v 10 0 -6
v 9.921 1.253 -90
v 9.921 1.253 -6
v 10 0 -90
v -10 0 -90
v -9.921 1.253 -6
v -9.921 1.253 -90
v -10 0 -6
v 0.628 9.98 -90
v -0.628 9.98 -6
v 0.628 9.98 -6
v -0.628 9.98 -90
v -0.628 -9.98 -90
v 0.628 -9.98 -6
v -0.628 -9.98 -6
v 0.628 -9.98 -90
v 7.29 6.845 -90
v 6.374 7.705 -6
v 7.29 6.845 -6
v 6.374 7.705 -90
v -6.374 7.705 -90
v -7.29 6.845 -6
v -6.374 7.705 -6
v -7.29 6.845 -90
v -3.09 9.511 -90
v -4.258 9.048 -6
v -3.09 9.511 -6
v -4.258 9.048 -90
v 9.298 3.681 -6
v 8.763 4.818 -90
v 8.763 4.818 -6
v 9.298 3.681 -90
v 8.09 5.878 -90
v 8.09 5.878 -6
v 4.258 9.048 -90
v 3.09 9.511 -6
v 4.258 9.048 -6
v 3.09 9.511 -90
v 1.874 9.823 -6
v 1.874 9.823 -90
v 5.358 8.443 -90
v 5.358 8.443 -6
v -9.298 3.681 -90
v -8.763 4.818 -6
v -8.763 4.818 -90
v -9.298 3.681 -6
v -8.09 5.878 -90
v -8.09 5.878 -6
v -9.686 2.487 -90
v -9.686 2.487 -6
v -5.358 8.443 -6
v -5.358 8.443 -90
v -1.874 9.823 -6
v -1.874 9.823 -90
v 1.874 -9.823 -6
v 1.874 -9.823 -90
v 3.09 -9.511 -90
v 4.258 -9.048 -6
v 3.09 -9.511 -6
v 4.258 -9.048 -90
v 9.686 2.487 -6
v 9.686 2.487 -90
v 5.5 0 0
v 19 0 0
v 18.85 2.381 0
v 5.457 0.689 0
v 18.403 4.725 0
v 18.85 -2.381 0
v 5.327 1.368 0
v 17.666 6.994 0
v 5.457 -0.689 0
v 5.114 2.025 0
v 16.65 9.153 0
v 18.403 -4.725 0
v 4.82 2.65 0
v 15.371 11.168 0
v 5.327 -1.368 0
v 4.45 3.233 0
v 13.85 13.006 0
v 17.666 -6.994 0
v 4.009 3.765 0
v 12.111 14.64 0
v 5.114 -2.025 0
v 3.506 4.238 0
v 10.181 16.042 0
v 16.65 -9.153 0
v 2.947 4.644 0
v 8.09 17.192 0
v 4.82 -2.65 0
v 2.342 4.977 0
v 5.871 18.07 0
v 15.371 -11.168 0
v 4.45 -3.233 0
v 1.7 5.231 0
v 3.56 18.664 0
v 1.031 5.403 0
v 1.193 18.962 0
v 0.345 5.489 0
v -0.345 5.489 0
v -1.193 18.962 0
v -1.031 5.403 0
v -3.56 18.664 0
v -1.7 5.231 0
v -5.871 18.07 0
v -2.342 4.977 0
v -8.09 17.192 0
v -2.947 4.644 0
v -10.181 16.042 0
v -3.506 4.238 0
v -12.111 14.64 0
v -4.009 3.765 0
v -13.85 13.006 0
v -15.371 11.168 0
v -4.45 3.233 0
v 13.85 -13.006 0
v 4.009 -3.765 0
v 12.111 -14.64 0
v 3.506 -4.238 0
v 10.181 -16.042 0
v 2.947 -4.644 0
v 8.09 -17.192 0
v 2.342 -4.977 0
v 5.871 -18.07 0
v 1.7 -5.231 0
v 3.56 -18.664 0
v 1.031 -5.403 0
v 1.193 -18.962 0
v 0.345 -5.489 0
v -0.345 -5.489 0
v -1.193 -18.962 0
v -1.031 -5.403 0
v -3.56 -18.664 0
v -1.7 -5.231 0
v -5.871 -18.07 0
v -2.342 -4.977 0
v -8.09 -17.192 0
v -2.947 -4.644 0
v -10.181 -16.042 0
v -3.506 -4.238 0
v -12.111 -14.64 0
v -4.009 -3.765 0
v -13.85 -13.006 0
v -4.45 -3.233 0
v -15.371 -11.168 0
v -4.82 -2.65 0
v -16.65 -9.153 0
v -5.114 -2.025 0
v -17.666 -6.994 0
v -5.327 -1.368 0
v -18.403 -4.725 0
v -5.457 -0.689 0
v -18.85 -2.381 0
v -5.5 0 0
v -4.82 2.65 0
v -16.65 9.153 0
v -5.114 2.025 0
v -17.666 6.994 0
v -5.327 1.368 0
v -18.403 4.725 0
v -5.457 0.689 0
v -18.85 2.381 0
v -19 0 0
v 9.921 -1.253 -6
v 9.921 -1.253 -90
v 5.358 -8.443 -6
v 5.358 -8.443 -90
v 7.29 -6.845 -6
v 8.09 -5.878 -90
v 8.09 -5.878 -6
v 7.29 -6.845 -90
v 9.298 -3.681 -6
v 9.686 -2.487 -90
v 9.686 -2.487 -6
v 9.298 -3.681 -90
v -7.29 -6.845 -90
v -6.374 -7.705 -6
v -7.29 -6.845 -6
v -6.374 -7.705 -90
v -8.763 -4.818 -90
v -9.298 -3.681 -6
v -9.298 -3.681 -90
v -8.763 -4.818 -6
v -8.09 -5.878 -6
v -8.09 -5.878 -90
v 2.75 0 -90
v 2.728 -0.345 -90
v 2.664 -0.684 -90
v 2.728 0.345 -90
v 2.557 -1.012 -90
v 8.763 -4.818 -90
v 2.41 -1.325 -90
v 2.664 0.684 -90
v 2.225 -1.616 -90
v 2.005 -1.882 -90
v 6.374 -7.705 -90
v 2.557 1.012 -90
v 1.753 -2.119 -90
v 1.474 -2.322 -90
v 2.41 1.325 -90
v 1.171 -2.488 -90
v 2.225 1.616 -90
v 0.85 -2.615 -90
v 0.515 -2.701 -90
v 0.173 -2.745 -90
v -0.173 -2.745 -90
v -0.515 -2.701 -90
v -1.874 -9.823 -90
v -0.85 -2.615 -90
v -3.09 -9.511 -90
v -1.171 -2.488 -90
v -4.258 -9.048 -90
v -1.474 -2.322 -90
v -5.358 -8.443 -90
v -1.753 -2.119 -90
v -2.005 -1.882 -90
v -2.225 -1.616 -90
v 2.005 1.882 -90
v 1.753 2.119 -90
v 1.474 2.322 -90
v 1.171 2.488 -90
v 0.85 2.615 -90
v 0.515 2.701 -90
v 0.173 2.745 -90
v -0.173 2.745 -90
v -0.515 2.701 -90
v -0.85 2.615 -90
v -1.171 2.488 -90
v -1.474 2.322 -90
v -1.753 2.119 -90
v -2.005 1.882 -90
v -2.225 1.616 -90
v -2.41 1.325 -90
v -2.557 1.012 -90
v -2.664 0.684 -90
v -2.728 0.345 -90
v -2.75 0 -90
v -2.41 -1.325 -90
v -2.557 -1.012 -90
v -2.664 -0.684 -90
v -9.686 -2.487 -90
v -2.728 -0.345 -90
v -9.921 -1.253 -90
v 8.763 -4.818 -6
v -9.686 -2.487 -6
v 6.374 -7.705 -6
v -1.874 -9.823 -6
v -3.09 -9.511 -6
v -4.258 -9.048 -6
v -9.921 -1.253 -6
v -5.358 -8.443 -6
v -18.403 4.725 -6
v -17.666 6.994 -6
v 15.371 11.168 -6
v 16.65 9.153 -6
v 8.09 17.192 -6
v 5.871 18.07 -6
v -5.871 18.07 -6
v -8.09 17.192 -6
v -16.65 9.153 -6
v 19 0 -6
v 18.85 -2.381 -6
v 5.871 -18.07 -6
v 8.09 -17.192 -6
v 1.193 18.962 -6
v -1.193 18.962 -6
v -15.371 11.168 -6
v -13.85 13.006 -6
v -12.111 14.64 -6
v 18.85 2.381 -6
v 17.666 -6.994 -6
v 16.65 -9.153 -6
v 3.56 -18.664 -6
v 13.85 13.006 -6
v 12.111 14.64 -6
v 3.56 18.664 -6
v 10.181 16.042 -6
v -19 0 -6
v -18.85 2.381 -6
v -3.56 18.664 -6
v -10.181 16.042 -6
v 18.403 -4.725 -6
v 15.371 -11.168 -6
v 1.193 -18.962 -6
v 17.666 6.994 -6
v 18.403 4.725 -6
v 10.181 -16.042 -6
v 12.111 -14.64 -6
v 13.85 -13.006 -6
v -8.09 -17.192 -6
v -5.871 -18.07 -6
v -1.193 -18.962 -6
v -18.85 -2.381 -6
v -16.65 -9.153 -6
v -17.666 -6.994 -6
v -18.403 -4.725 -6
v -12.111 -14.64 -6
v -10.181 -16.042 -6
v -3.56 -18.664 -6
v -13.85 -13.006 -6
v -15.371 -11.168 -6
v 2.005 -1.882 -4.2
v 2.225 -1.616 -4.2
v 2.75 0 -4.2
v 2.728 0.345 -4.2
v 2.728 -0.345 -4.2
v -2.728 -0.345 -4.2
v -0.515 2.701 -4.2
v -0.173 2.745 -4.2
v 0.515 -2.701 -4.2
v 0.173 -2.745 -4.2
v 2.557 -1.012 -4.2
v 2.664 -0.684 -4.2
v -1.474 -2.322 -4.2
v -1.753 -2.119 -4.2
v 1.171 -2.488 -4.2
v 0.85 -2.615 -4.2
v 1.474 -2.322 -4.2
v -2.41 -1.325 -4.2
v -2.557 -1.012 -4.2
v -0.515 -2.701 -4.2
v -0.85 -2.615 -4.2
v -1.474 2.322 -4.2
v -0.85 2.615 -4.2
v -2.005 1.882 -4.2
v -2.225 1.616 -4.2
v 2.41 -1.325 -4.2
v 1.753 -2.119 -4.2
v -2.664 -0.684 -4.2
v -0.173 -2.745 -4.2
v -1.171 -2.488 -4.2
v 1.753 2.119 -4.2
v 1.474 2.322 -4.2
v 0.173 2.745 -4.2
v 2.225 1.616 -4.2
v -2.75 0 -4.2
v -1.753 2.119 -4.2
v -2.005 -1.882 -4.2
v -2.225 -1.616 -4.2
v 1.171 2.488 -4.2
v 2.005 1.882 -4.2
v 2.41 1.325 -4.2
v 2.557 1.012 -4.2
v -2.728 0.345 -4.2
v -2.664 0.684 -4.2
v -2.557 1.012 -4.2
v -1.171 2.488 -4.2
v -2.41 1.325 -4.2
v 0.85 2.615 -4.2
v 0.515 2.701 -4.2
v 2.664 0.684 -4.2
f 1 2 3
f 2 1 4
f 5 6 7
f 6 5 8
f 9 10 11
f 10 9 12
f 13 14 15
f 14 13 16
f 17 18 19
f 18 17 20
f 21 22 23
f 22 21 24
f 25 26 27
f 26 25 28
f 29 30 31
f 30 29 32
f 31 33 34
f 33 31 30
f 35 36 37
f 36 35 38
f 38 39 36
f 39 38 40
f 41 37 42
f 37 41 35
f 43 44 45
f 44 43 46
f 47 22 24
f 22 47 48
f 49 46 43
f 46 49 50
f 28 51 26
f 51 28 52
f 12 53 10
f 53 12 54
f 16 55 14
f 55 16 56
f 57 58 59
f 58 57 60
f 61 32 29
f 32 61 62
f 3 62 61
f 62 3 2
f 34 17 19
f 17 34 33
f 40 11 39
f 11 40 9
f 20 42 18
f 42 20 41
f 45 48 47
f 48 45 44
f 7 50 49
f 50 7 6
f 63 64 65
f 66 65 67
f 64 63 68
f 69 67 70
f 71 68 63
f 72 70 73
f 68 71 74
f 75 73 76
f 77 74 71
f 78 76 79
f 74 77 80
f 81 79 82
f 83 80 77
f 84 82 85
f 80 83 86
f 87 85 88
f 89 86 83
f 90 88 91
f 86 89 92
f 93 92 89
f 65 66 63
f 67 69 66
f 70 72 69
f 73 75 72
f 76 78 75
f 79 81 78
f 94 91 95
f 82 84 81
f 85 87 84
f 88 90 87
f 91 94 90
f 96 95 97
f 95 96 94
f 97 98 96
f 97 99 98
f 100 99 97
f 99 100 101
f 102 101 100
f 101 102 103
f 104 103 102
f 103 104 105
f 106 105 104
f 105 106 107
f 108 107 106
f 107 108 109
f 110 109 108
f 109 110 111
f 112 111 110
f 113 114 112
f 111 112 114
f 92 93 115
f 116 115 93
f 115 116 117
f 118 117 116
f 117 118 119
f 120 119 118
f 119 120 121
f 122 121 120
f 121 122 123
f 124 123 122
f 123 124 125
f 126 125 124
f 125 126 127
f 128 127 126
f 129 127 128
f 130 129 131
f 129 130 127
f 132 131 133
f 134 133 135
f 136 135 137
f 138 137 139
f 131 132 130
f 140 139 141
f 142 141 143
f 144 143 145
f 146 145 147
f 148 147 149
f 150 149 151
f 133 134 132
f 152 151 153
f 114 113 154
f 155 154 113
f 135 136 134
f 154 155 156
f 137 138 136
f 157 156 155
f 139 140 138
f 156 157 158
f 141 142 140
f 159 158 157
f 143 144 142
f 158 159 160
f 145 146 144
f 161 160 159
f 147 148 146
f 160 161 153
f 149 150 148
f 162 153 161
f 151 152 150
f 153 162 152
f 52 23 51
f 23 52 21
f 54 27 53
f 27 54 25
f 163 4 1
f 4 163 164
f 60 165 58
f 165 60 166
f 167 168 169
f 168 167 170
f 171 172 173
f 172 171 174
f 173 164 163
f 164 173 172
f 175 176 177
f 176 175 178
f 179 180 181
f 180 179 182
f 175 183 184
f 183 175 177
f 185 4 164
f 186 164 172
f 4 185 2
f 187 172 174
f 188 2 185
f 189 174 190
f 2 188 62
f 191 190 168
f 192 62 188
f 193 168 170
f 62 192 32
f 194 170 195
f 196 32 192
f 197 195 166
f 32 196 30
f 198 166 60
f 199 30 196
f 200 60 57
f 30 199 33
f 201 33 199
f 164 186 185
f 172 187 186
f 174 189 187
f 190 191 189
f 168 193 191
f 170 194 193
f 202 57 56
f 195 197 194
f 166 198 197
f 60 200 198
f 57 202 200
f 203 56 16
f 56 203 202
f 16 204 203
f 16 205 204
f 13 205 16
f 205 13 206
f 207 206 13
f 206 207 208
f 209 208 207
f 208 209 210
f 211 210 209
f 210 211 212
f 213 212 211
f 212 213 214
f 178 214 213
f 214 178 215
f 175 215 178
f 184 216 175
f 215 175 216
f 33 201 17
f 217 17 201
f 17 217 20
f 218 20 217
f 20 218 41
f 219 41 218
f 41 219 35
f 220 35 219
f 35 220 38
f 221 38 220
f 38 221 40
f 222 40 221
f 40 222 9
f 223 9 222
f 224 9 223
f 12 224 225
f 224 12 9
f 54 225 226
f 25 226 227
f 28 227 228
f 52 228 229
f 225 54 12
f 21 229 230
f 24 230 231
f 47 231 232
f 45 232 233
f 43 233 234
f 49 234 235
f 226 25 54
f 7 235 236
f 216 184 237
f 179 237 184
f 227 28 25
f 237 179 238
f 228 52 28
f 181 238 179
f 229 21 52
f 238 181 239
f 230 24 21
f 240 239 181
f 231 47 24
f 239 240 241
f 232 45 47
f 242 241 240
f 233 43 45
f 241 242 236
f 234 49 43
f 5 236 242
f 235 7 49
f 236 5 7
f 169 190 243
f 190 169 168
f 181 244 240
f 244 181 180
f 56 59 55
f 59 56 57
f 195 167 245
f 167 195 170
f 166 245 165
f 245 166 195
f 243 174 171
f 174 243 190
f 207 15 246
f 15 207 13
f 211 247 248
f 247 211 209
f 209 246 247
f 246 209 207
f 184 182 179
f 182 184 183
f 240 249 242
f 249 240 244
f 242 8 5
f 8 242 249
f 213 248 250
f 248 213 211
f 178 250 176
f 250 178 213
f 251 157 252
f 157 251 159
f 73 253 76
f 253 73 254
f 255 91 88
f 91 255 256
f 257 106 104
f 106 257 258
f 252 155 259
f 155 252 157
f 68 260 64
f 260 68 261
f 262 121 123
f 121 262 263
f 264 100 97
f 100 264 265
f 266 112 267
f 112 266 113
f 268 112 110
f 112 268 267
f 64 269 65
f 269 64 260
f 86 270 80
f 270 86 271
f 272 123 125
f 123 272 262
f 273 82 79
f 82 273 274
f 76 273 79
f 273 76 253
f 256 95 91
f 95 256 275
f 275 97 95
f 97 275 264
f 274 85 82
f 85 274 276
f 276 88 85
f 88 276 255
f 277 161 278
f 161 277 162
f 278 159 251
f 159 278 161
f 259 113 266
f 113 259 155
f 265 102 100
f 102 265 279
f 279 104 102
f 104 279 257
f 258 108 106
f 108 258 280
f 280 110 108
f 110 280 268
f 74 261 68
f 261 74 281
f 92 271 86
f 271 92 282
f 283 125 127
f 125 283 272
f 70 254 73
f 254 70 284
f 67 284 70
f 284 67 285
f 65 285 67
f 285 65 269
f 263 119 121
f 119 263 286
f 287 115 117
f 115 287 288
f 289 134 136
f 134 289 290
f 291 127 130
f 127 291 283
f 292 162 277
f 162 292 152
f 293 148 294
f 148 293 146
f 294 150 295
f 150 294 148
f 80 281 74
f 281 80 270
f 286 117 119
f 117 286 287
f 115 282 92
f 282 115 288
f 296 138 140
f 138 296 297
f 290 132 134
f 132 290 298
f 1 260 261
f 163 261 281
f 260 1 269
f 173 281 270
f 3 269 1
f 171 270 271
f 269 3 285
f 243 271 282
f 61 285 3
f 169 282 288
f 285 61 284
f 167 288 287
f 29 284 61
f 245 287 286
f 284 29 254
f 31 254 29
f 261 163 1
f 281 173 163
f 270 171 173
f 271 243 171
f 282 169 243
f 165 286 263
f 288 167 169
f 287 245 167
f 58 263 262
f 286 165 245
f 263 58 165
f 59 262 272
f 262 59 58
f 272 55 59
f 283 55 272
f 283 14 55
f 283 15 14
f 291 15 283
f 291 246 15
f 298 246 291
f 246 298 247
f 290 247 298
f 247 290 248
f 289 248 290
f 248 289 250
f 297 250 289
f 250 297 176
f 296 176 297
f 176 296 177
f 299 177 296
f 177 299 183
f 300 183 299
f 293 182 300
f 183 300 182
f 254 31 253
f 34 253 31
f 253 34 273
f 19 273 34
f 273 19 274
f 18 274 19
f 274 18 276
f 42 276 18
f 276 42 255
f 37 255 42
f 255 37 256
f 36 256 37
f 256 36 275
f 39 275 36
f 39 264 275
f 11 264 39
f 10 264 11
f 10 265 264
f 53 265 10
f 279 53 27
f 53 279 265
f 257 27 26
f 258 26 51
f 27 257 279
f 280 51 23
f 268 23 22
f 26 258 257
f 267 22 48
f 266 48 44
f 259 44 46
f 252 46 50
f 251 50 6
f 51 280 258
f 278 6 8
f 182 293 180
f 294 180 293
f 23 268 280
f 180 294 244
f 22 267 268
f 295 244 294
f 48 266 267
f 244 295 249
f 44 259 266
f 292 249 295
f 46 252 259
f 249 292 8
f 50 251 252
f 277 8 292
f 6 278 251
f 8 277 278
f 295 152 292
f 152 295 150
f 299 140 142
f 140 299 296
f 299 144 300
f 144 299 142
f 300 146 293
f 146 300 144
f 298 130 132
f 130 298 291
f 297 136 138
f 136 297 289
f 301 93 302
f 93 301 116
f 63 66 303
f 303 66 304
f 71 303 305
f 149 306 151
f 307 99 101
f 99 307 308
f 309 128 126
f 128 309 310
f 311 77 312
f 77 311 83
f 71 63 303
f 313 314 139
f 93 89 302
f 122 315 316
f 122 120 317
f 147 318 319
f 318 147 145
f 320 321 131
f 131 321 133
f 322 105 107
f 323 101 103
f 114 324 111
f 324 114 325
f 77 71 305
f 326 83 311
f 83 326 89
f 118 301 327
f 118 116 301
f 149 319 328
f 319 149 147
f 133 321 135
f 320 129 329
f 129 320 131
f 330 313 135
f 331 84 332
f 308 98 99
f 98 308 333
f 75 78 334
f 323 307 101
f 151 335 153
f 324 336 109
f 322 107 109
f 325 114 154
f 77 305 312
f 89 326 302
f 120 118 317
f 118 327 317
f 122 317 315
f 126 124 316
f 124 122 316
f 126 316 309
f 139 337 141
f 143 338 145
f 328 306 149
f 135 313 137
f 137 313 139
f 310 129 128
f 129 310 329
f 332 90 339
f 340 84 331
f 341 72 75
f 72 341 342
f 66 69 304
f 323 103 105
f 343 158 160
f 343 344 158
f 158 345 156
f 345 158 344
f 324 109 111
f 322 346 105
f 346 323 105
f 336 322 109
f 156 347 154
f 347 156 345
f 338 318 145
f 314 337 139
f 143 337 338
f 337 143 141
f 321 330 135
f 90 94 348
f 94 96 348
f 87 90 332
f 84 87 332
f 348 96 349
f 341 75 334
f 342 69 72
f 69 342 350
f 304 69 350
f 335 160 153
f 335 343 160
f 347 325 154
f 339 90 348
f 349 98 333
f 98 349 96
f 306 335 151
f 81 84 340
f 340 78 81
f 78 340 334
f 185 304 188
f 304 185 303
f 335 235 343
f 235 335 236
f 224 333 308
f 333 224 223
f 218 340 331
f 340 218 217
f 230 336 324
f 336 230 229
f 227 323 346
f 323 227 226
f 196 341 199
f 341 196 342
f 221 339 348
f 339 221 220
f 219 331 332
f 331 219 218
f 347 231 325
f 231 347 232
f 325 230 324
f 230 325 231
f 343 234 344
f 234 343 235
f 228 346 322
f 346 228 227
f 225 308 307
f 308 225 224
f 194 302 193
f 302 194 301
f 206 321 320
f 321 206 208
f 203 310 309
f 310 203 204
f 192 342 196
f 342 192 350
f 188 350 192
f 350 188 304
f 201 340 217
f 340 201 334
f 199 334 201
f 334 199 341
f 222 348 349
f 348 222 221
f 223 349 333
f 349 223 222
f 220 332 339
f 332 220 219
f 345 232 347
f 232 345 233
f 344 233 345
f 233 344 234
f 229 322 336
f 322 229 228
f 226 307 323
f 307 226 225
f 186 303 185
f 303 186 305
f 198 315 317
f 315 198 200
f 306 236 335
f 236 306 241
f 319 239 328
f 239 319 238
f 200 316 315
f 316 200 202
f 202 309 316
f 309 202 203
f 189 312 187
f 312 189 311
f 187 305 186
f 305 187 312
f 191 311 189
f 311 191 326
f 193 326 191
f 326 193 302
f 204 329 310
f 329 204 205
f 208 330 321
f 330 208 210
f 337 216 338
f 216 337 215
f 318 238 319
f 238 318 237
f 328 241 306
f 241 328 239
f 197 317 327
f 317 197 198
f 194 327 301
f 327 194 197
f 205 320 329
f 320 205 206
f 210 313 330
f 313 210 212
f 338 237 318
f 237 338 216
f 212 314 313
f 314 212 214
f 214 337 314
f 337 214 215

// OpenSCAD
$fn = 50;


difference() {
	union() {
		translate(v = [0, 0, -90.0000000000]) {
			cylinder(h = 90, r = 10.0000000000);
		}
		translate(v = [0, 0, -6.0000000000]) {
			cylinder(h = 6, r = 19.0000000000);
		}
	}
	union() {
		translate(v = [0, 0, 0]) {
			rotate(a = [0, 0, 0]) {
				difference() {
					union() {
						#translate(v = [0, 0, -90.0000000000]) {
							cylinder(h = 90, r = 2.2500000000);
						}
						#translate(v = [0, 0, -4.2000000000]) {
							cylinder(h = 4.2000000000, r = 10.0000000000, r1 = 2.7500000000, r2 = 5.5000000000);
						}
						#translate(v = [0, 0, -90.0000000000]) {
							cylinder(h = 90, r = 2.7500000000);
						}
						#translate(v = [0, 0, -90.0000000000]) {
							cylinder(h = 90, r = 2.2500000000);
						}
					}
					union();
				}
			}
		}
	}
}
